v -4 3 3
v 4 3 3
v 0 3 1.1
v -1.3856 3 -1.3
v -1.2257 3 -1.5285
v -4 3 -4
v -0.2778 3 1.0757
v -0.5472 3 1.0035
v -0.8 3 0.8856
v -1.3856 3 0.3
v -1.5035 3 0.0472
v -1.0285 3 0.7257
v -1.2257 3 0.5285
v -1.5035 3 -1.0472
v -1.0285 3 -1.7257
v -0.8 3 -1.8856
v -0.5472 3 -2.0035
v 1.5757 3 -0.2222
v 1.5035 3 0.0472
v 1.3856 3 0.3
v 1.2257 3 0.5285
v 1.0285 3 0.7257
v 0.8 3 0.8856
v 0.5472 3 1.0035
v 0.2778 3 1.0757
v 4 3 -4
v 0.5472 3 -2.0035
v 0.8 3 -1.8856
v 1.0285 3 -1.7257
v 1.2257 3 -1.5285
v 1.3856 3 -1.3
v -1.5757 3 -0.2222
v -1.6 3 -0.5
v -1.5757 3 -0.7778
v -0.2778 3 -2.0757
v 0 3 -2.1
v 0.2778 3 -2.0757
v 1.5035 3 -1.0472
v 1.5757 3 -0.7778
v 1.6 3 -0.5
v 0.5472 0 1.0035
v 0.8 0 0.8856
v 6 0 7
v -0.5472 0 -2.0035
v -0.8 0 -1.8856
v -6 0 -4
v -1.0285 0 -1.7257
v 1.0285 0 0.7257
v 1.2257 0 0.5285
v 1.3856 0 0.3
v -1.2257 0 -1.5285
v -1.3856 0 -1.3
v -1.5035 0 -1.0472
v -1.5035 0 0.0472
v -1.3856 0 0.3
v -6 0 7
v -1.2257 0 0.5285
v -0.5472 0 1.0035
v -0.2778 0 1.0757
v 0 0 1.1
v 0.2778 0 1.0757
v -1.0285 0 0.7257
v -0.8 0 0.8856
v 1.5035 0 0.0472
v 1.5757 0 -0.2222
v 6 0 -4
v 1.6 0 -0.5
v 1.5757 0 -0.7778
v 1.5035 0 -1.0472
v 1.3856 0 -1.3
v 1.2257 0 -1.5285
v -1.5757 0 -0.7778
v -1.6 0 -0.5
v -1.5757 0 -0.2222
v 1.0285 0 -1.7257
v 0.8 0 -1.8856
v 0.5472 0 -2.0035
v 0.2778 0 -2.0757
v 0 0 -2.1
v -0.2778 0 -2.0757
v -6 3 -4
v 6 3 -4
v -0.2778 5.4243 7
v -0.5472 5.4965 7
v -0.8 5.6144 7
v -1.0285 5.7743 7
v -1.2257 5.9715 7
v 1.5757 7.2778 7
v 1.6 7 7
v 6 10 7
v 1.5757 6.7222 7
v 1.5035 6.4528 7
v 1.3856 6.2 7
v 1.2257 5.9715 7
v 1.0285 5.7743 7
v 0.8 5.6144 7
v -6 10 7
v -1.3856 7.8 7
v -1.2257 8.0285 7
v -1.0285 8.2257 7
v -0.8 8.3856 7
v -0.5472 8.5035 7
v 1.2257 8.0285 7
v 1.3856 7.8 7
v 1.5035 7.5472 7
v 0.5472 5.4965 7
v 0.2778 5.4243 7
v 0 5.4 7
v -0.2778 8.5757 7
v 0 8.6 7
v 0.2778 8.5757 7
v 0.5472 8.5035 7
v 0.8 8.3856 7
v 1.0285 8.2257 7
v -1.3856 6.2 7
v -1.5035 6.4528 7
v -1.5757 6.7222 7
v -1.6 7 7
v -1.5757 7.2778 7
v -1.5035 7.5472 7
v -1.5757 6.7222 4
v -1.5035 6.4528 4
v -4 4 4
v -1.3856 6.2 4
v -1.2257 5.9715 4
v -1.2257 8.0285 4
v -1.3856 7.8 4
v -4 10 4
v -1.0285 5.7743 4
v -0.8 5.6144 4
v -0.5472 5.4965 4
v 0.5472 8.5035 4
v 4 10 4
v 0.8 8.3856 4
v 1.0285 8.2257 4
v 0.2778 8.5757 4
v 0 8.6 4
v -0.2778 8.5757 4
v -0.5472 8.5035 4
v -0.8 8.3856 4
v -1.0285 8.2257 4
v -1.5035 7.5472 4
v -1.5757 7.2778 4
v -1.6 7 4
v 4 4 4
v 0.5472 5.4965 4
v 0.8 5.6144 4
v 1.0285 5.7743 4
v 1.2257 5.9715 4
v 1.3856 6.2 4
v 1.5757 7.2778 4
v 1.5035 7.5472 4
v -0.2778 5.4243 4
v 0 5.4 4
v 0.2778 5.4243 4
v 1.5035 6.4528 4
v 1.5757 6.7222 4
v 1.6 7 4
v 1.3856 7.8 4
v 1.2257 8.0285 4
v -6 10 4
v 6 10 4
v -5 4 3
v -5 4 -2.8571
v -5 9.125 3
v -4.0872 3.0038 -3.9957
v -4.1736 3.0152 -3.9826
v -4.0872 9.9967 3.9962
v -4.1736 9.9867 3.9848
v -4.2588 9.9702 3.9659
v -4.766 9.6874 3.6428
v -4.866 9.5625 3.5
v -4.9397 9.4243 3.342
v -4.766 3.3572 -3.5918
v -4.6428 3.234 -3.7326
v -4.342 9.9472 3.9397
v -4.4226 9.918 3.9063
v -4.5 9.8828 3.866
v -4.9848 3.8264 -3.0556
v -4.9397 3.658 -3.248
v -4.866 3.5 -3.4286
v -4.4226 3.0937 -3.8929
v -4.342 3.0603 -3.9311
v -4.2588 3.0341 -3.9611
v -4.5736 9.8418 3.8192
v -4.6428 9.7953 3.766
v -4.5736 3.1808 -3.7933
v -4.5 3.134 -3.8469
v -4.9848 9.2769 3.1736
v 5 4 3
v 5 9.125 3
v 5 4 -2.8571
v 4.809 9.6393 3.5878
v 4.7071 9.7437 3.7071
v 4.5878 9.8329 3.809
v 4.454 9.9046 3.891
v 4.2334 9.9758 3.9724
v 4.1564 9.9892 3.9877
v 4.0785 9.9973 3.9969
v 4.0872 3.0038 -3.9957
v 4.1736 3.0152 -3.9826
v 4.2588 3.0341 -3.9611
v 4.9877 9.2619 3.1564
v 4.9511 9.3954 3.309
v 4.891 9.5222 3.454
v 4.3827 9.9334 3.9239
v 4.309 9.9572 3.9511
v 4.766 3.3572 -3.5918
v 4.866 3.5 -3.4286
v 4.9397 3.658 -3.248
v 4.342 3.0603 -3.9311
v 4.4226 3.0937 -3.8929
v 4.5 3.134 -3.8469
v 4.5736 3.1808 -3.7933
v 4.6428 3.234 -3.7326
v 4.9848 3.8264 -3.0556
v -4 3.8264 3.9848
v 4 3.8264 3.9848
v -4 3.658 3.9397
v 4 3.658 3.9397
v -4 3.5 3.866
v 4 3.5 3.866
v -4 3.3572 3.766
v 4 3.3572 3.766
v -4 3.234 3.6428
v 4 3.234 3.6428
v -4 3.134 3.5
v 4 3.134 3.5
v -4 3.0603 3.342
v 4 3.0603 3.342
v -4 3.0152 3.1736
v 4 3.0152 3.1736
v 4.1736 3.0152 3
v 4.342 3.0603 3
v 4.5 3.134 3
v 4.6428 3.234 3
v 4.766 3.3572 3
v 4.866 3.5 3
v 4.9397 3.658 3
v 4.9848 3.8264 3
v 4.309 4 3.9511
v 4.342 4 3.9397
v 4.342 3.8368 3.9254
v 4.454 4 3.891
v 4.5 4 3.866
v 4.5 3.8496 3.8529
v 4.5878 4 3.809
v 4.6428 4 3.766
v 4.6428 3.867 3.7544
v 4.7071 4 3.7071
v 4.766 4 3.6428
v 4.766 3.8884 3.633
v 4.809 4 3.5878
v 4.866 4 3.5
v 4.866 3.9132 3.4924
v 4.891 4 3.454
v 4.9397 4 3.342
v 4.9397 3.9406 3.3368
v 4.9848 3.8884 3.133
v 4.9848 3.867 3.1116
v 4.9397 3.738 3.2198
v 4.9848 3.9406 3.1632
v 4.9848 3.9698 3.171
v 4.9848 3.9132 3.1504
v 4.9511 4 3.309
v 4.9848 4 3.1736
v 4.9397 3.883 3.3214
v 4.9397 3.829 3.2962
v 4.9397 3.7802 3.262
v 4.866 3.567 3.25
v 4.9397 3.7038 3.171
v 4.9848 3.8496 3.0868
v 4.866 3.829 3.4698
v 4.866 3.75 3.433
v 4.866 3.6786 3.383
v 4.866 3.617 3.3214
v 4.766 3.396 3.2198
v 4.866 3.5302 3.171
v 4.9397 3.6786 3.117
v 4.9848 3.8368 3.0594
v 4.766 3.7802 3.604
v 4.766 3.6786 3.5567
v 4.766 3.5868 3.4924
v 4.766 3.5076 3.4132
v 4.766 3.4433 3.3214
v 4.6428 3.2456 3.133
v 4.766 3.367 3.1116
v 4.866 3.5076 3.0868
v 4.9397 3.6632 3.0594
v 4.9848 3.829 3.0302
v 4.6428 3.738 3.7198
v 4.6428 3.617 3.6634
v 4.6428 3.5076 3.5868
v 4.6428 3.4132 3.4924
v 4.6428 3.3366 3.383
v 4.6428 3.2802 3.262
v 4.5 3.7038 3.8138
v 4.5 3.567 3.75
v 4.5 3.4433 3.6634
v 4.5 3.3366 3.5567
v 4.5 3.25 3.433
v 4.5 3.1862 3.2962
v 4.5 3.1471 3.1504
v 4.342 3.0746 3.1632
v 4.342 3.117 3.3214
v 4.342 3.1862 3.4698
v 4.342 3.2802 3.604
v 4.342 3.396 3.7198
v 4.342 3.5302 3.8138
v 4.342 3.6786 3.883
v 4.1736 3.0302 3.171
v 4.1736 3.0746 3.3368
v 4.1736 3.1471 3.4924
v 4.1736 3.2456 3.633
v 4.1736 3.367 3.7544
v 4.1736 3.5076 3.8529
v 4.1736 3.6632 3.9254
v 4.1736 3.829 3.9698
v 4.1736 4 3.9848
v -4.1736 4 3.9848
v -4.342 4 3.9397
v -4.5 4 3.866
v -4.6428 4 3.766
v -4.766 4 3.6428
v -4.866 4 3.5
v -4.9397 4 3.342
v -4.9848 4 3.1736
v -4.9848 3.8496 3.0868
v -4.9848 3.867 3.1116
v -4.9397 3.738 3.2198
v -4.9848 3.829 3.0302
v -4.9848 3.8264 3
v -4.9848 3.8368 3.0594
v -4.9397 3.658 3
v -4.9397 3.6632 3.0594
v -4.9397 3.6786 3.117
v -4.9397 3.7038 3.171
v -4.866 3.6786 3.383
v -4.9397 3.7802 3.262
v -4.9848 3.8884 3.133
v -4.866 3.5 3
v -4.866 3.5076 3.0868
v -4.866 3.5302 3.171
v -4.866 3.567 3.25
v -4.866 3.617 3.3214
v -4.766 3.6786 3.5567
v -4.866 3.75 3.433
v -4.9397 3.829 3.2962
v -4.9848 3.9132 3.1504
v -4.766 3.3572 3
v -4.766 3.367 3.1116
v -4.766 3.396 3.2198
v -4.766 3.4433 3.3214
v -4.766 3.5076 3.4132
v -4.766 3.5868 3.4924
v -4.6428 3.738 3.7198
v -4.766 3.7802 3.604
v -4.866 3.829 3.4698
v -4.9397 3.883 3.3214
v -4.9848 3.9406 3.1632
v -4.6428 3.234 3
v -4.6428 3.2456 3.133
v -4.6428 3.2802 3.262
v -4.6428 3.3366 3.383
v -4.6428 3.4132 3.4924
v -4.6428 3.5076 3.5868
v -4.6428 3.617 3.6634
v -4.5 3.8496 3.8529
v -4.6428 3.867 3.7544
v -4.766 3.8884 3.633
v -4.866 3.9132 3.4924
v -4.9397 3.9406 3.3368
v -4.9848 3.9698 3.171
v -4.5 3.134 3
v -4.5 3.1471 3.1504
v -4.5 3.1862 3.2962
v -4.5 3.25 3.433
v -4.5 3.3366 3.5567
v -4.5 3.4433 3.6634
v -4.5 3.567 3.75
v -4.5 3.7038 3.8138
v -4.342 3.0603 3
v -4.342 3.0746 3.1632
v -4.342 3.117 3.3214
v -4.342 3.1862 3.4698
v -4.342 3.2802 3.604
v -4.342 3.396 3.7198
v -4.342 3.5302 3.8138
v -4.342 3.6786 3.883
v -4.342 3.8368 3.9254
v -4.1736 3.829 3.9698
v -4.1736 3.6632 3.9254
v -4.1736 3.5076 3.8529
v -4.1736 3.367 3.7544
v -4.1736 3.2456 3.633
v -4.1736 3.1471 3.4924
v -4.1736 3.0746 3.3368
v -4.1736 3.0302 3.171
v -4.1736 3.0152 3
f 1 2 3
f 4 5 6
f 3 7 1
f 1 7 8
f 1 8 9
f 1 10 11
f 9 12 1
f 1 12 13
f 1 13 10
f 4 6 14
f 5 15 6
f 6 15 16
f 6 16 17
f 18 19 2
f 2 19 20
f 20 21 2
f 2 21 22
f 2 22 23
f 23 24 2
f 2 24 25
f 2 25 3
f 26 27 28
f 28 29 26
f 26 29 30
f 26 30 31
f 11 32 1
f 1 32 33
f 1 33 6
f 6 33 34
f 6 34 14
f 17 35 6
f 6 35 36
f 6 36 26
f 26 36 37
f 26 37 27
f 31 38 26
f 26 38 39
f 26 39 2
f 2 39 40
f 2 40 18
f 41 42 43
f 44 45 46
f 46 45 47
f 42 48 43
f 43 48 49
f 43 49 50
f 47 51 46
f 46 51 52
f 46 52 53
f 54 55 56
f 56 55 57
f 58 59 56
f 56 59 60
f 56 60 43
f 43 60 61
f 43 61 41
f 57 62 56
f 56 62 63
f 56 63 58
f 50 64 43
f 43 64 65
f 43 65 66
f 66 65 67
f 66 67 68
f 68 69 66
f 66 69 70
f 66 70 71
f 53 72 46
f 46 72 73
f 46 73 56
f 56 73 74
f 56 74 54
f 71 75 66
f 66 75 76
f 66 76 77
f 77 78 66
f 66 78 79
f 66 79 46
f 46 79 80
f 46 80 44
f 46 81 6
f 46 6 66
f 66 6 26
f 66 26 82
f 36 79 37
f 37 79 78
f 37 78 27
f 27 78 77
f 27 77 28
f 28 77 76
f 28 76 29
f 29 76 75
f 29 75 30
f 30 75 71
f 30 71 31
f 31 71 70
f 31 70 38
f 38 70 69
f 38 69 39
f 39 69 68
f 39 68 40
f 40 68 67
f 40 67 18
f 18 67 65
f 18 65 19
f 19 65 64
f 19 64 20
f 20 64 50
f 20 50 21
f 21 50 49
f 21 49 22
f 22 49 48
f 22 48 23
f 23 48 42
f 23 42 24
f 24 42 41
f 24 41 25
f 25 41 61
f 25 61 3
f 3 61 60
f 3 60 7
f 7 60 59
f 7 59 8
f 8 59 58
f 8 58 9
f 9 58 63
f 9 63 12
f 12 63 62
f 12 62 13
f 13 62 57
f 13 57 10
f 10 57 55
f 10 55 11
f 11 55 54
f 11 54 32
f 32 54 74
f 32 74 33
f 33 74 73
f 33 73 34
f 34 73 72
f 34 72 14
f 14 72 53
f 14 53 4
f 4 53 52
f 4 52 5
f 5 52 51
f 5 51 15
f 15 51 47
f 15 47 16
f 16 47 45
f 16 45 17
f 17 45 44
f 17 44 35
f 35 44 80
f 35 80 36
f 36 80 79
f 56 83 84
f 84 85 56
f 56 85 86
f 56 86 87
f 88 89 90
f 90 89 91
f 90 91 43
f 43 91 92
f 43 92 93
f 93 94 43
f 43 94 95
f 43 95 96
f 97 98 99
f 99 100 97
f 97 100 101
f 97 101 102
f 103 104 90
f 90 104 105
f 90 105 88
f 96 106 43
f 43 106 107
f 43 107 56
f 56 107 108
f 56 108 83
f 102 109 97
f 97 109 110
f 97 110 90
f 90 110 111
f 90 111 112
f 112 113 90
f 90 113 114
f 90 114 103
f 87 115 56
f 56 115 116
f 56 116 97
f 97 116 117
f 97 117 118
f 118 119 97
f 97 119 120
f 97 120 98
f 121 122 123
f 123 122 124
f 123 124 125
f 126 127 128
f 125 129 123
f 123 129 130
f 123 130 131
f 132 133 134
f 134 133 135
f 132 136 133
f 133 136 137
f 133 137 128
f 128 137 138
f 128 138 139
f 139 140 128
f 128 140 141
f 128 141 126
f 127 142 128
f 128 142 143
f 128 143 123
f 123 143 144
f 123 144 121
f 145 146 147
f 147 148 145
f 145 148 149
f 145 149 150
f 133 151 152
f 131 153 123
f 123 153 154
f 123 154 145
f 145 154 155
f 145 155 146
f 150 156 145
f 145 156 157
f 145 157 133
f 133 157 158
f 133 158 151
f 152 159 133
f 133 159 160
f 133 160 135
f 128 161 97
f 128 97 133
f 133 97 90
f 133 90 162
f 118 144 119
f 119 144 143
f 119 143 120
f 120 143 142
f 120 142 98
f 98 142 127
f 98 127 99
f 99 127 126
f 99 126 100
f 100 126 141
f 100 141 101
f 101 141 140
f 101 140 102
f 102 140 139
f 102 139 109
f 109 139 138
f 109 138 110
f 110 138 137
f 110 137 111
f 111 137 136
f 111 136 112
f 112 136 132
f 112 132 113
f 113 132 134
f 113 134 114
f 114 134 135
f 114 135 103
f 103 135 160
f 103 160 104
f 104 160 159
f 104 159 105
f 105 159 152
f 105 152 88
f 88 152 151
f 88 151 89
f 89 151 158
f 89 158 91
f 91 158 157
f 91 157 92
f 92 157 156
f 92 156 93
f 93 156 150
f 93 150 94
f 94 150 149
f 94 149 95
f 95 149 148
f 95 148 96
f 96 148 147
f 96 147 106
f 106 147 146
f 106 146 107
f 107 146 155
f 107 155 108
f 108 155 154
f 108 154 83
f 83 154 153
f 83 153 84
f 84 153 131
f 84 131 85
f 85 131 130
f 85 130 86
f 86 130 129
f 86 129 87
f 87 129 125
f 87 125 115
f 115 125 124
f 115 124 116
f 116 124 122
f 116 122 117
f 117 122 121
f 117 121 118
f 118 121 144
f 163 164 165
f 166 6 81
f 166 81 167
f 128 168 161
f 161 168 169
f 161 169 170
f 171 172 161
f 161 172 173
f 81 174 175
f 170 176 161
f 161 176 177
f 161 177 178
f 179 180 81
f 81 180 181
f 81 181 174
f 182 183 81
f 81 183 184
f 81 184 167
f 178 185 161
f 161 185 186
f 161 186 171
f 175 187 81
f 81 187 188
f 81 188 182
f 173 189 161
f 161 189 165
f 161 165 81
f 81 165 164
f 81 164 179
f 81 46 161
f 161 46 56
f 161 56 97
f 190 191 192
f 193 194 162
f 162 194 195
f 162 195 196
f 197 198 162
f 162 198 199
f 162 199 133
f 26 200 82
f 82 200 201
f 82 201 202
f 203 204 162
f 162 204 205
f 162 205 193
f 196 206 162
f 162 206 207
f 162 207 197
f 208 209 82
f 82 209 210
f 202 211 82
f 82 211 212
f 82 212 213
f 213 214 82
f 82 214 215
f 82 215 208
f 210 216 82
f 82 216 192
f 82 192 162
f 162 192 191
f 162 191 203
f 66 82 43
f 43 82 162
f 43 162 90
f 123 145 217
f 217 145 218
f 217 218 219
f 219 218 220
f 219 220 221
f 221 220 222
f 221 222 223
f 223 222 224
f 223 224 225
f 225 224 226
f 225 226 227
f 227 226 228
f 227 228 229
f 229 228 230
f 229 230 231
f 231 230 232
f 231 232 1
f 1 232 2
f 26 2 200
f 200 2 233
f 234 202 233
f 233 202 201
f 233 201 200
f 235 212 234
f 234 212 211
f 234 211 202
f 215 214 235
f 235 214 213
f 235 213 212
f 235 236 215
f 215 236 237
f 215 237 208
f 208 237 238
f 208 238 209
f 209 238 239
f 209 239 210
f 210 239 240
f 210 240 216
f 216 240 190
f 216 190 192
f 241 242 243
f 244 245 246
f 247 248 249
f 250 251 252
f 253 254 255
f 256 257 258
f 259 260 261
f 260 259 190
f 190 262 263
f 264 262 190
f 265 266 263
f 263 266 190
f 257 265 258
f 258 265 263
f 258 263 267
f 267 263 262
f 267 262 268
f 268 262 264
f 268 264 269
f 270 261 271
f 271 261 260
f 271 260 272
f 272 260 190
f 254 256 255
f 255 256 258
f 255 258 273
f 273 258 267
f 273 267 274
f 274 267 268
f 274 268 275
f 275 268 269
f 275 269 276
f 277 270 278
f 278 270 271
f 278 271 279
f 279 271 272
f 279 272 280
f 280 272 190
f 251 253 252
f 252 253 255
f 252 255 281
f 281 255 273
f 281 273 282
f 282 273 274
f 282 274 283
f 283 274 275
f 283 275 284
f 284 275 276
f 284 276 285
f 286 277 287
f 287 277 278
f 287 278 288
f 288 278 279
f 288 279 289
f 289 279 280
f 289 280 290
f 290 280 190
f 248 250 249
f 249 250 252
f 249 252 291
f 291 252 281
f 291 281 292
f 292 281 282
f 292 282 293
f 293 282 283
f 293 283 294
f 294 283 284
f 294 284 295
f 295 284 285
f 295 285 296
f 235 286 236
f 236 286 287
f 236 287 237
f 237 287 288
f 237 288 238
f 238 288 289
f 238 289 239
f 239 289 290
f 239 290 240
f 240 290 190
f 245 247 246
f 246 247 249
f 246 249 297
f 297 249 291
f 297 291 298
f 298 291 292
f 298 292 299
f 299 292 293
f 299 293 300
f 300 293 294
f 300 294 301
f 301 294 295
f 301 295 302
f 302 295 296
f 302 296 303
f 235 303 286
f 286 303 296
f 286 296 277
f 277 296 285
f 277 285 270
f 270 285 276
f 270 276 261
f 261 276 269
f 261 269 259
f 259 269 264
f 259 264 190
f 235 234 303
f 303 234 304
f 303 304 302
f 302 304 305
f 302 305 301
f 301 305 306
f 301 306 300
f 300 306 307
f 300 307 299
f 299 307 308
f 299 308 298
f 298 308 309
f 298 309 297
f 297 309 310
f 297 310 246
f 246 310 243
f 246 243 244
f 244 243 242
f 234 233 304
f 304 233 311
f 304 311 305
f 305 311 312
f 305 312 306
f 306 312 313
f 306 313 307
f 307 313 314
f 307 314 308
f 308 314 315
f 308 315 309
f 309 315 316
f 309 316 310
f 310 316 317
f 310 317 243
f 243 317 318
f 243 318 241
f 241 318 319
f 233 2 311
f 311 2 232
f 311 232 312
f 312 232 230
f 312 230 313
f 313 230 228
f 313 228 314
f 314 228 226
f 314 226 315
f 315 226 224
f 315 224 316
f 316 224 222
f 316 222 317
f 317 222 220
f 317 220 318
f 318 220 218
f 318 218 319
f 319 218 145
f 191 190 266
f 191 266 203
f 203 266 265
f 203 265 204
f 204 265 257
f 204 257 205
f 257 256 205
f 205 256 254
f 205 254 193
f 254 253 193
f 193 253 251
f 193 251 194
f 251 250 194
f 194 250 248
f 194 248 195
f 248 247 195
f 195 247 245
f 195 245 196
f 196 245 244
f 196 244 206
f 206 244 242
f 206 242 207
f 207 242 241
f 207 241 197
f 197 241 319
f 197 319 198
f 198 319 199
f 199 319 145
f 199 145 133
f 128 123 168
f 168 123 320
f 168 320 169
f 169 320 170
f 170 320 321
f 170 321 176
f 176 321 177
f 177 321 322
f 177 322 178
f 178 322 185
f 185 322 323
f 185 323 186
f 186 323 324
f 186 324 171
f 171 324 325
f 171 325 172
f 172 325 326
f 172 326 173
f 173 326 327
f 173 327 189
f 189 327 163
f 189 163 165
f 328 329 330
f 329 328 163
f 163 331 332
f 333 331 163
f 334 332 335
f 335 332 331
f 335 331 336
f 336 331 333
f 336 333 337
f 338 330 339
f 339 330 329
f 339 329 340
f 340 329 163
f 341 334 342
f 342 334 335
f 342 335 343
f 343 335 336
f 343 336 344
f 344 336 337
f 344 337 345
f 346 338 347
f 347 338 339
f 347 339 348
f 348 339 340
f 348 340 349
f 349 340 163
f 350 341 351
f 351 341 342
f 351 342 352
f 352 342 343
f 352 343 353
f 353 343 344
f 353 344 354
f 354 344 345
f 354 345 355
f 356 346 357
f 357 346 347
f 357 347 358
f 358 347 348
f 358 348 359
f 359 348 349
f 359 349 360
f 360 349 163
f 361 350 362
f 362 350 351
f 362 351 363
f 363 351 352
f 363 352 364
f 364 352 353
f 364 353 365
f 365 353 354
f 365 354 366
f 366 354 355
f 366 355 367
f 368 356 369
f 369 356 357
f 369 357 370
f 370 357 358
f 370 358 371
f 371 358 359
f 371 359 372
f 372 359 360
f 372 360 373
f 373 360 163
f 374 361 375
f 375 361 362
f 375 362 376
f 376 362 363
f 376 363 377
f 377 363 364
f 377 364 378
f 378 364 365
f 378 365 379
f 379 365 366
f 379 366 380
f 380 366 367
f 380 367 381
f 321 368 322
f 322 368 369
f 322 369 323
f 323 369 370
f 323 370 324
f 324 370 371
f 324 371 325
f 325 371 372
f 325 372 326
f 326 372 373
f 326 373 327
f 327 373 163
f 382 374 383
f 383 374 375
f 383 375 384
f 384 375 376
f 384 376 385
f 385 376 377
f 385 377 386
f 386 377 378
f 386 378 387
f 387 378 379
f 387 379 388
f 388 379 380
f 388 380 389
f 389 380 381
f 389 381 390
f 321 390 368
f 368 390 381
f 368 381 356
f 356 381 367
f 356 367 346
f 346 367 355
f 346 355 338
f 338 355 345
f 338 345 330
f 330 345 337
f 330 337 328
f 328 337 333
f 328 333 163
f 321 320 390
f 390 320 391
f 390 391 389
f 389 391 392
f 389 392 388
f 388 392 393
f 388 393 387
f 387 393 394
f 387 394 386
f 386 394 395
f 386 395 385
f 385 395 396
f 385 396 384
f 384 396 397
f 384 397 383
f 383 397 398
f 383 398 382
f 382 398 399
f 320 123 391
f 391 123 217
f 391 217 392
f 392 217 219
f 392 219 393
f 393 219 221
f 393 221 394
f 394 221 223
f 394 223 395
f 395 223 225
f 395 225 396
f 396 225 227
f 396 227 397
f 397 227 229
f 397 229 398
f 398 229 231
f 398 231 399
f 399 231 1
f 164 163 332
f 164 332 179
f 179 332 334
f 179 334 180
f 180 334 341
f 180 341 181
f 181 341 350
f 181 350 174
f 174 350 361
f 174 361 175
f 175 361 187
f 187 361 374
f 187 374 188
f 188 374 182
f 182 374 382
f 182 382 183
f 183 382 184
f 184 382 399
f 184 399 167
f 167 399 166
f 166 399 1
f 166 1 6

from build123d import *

# Parameters (mm, degrees)
SKETCH2_W           = 10
SKETCH2_H           = 8
SKETCH2_R           = 1.6
BOSS_EXTRUDE1_DEPTH = 3
SKETCH3_W           = 10
SKETCH3_H           = 10
SKETCH3_R           = 1.6
BOSS_EXTRUDE2_DEPTH = 3
BOSS_EXTRUDE3_DEPTH = 1
FILLET1_R           = 1
FILLET2_R           = 1


with BuildPart() as part:
    # Sketch2 → Boss-Extrude1 (new body)
    with BuildSketch(Plane(origin=(0, 0, 0), x_dir=(1, 0, 0), z_dir=(0, 1, 0))):
        Rectangle(SKETCH2_W, SKETCH2_H)
        with Locations(Location((0, 0.5, 0), (0, 0, 270))):
            Circle(SKETCH2_R, mode=Mode.SUBTRACT)
    extrude(amount=BOSS_EXTRUDE1_DEPTH)

    # Sketch3 → Boss-Extrude2 (add)
    with BuildSketch(Plane.XY.offset(4)):
        with Locations((0, 5)):
            Rectangle(SKETCH3_W, SKETCH3_H)
        with Locations((0, 7)):
            Circle(SKETCH3_R, mode=Mode.SUBTRACT)
    extrude(amount=BOSS_EXTRUDE2_DEPTH)

    # Sketch4 → Boss-Extrude3 (add)
    with BuildSketch(Plane.ZY.offset(5)):
        Polygon((-4, 3), (4, 10), (7, 10), (7, 0), (-4, 0), align=None)
    boss_extrude3 = extrude(amount=BOSS_EXTRUDE3_DEPTH)

    # Mirror1: Boss-Extrude3 across plane
    add(boss_extrude3.mirror(Plane(origin=(0, 0, 0), x_dir=(0, 0, 1), z_dir=(1, 0, 0))))

    # Fillet1
    fillet1_edges = [part.edges().sort_by_distance(p)[0] for p in [
        (0, 3, 4),
    ]]
    fillet(fillet1_edges, radius=FILLET1_R)

    # Fillet2
    fillet2_edges = [part.edges().sort_by_distance(p)[0] for p in [
        (-5, 3, -0.5),
        (5, 3, -0.5),
        (5, 7, 4),
        (5, 3.292893219, 3.707106781),
        (-5, 7, 4),
        (-5, 3.292893219, 3.707106781),
    ]]
    fillet(fillet2_edges, radius=FILLET2_R)


solid = part.part
